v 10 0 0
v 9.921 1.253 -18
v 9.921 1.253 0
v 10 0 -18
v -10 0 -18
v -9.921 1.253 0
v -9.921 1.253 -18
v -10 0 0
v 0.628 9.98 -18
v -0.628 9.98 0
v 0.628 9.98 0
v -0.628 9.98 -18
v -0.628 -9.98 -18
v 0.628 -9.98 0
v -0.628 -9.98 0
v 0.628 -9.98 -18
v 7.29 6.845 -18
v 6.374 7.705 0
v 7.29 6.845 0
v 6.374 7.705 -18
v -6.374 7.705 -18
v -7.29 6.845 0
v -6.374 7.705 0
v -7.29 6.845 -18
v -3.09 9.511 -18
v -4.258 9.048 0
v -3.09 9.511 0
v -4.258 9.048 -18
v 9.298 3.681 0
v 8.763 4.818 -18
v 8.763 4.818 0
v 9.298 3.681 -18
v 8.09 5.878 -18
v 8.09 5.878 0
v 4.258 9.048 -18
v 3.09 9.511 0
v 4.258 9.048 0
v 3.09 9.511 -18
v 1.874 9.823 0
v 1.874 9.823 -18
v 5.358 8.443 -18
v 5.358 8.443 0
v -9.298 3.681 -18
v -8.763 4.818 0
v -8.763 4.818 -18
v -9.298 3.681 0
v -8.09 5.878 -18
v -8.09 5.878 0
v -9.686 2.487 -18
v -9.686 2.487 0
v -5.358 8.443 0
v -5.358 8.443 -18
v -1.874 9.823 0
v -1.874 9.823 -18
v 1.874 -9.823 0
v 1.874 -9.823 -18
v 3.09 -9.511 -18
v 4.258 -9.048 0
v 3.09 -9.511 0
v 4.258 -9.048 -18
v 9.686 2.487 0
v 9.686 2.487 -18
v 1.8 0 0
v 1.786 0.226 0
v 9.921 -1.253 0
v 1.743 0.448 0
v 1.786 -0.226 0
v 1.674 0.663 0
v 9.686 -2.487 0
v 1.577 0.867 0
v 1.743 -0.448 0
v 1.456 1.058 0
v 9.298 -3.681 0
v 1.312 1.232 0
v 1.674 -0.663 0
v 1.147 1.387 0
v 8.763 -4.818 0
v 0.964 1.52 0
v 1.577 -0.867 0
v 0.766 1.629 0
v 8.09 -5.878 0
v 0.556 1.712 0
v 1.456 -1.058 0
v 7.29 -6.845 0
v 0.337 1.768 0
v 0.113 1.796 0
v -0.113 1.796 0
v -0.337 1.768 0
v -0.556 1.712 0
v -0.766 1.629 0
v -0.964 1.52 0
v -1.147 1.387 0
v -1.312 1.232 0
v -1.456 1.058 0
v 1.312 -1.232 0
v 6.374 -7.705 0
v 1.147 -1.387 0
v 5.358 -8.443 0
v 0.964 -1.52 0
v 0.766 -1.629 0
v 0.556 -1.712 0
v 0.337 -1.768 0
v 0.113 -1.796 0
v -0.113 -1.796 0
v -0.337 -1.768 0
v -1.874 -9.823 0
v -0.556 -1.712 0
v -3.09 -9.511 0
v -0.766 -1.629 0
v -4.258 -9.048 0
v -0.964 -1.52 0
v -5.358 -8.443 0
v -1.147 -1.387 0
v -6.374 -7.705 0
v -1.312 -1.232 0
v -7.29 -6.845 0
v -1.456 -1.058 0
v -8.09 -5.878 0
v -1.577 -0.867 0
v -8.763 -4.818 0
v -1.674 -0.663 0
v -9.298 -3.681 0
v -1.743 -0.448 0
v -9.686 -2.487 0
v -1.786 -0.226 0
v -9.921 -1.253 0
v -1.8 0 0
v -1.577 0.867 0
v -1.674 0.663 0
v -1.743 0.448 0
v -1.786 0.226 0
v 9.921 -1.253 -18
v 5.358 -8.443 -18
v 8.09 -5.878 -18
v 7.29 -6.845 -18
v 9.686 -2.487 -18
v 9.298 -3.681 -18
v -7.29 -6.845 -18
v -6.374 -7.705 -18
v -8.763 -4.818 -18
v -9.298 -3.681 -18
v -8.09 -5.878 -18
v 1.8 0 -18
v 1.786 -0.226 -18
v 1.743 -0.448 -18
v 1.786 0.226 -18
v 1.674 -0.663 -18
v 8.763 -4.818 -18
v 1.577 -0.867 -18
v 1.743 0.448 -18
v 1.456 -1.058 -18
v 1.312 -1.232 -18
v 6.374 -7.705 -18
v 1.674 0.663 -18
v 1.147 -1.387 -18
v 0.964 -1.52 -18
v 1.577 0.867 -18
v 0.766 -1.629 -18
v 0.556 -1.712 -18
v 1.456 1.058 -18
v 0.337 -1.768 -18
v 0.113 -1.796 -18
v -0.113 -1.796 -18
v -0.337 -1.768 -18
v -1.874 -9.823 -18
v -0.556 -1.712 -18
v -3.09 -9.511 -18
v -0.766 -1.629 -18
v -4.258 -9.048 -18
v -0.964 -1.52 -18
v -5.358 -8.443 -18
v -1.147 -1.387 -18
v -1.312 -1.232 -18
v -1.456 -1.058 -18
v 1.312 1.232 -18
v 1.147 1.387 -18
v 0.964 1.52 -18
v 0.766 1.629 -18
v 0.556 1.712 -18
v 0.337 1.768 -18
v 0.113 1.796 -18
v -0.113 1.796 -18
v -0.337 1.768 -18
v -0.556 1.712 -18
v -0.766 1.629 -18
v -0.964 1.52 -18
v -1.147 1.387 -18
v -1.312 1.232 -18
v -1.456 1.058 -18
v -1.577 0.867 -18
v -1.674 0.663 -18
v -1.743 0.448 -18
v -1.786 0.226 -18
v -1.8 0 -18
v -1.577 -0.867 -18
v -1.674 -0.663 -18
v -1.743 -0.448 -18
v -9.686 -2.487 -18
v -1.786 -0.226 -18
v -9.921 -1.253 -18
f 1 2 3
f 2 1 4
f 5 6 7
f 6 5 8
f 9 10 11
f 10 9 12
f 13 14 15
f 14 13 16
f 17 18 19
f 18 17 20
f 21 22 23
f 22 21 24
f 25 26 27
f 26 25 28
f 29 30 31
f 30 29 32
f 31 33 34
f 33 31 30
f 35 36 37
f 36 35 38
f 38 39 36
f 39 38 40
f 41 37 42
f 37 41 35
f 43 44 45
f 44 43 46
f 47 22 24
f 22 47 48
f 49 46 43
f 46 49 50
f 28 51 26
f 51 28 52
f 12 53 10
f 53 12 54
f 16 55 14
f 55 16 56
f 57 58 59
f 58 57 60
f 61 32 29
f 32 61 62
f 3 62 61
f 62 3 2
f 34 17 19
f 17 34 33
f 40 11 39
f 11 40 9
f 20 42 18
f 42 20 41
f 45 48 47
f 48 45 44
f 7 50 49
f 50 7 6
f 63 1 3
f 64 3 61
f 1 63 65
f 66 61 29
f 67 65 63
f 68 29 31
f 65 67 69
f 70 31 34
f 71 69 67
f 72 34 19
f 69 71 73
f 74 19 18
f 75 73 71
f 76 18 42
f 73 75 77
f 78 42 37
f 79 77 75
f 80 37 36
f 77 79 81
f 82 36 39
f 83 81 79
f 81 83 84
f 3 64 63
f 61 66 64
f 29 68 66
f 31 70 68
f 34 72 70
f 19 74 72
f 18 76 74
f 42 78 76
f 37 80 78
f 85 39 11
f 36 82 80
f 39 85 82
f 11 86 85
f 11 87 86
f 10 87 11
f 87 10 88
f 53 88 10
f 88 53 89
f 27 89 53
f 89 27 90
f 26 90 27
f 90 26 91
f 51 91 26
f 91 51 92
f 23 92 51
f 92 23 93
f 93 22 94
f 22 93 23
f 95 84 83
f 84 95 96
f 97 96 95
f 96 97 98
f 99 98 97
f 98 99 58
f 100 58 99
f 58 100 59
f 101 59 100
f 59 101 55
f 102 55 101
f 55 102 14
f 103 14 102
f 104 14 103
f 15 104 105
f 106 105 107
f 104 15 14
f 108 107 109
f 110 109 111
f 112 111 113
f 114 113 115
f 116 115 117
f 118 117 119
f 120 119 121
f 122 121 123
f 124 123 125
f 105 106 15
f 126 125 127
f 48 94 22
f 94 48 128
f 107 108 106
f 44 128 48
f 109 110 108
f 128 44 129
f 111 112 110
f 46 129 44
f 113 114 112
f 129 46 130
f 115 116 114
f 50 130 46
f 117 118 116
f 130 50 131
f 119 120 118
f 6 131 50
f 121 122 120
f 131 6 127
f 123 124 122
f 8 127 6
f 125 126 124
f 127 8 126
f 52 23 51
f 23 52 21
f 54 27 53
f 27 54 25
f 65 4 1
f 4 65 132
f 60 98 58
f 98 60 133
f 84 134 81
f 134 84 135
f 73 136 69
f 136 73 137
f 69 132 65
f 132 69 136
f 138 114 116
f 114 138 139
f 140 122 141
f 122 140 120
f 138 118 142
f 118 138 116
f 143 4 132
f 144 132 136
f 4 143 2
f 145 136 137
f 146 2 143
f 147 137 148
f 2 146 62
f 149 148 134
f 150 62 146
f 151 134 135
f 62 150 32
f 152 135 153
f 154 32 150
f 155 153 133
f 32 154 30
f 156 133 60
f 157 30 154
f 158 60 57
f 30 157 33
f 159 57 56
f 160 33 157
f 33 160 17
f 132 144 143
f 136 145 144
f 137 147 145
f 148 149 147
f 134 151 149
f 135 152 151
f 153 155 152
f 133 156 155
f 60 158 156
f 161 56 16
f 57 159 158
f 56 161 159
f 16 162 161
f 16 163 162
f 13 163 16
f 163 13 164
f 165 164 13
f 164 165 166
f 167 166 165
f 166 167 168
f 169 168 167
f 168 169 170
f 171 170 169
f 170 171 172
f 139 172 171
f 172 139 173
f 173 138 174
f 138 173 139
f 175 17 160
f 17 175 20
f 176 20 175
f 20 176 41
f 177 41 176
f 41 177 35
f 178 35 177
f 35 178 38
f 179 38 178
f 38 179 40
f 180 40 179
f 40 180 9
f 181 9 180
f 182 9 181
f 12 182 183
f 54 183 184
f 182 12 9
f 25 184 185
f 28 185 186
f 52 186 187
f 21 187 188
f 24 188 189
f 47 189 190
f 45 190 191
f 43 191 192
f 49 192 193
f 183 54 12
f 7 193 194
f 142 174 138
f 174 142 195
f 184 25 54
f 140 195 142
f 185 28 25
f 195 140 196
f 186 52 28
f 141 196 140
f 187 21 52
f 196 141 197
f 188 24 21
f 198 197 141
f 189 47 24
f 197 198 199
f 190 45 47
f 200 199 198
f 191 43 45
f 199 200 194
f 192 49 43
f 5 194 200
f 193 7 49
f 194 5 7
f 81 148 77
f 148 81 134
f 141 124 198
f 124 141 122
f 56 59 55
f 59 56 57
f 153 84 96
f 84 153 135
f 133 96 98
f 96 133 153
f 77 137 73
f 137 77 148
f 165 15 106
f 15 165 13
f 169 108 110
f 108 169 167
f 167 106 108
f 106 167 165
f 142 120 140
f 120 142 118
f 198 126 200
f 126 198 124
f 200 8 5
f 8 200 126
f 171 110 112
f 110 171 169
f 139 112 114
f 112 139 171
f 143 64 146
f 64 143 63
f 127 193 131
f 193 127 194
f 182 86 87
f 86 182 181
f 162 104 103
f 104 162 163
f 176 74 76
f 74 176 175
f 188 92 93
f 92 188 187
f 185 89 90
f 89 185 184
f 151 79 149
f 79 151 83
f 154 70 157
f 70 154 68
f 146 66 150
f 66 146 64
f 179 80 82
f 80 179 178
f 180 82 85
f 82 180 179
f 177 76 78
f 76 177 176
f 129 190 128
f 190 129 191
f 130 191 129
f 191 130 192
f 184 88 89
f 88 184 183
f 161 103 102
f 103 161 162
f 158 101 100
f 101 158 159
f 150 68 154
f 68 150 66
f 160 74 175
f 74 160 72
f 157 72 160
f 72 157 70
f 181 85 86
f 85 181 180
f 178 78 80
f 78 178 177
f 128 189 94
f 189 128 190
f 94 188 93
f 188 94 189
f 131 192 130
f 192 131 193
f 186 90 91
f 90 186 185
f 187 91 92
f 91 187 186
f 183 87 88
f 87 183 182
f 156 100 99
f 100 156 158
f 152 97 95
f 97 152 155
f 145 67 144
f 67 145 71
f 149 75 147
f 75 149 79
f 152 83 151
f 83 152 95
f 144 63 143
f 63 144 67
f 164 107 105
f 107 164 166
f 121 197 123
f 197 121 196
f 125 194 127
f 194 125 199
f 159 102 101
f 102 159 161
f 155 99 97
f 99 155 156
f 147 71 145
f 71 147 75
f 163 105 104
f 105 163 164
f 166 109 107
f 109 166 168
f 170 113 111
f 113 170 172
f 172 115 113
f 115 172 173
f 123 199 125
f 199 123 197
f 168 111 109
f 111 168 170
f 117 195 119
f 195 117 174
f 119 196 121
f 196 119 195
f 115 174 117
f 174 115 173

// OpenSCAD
$fn = 50;


difference() {
	union() {
		translate(v = [0, 0, -18.0000000000]) {
			cylinder(h = 18, r = 10.0000000000);
		}
	}
	union() {
		#translate(v = [0, 0, -18]) {
			cylinder(h = 18, r = 1.8000000000);
		}
	}
}
